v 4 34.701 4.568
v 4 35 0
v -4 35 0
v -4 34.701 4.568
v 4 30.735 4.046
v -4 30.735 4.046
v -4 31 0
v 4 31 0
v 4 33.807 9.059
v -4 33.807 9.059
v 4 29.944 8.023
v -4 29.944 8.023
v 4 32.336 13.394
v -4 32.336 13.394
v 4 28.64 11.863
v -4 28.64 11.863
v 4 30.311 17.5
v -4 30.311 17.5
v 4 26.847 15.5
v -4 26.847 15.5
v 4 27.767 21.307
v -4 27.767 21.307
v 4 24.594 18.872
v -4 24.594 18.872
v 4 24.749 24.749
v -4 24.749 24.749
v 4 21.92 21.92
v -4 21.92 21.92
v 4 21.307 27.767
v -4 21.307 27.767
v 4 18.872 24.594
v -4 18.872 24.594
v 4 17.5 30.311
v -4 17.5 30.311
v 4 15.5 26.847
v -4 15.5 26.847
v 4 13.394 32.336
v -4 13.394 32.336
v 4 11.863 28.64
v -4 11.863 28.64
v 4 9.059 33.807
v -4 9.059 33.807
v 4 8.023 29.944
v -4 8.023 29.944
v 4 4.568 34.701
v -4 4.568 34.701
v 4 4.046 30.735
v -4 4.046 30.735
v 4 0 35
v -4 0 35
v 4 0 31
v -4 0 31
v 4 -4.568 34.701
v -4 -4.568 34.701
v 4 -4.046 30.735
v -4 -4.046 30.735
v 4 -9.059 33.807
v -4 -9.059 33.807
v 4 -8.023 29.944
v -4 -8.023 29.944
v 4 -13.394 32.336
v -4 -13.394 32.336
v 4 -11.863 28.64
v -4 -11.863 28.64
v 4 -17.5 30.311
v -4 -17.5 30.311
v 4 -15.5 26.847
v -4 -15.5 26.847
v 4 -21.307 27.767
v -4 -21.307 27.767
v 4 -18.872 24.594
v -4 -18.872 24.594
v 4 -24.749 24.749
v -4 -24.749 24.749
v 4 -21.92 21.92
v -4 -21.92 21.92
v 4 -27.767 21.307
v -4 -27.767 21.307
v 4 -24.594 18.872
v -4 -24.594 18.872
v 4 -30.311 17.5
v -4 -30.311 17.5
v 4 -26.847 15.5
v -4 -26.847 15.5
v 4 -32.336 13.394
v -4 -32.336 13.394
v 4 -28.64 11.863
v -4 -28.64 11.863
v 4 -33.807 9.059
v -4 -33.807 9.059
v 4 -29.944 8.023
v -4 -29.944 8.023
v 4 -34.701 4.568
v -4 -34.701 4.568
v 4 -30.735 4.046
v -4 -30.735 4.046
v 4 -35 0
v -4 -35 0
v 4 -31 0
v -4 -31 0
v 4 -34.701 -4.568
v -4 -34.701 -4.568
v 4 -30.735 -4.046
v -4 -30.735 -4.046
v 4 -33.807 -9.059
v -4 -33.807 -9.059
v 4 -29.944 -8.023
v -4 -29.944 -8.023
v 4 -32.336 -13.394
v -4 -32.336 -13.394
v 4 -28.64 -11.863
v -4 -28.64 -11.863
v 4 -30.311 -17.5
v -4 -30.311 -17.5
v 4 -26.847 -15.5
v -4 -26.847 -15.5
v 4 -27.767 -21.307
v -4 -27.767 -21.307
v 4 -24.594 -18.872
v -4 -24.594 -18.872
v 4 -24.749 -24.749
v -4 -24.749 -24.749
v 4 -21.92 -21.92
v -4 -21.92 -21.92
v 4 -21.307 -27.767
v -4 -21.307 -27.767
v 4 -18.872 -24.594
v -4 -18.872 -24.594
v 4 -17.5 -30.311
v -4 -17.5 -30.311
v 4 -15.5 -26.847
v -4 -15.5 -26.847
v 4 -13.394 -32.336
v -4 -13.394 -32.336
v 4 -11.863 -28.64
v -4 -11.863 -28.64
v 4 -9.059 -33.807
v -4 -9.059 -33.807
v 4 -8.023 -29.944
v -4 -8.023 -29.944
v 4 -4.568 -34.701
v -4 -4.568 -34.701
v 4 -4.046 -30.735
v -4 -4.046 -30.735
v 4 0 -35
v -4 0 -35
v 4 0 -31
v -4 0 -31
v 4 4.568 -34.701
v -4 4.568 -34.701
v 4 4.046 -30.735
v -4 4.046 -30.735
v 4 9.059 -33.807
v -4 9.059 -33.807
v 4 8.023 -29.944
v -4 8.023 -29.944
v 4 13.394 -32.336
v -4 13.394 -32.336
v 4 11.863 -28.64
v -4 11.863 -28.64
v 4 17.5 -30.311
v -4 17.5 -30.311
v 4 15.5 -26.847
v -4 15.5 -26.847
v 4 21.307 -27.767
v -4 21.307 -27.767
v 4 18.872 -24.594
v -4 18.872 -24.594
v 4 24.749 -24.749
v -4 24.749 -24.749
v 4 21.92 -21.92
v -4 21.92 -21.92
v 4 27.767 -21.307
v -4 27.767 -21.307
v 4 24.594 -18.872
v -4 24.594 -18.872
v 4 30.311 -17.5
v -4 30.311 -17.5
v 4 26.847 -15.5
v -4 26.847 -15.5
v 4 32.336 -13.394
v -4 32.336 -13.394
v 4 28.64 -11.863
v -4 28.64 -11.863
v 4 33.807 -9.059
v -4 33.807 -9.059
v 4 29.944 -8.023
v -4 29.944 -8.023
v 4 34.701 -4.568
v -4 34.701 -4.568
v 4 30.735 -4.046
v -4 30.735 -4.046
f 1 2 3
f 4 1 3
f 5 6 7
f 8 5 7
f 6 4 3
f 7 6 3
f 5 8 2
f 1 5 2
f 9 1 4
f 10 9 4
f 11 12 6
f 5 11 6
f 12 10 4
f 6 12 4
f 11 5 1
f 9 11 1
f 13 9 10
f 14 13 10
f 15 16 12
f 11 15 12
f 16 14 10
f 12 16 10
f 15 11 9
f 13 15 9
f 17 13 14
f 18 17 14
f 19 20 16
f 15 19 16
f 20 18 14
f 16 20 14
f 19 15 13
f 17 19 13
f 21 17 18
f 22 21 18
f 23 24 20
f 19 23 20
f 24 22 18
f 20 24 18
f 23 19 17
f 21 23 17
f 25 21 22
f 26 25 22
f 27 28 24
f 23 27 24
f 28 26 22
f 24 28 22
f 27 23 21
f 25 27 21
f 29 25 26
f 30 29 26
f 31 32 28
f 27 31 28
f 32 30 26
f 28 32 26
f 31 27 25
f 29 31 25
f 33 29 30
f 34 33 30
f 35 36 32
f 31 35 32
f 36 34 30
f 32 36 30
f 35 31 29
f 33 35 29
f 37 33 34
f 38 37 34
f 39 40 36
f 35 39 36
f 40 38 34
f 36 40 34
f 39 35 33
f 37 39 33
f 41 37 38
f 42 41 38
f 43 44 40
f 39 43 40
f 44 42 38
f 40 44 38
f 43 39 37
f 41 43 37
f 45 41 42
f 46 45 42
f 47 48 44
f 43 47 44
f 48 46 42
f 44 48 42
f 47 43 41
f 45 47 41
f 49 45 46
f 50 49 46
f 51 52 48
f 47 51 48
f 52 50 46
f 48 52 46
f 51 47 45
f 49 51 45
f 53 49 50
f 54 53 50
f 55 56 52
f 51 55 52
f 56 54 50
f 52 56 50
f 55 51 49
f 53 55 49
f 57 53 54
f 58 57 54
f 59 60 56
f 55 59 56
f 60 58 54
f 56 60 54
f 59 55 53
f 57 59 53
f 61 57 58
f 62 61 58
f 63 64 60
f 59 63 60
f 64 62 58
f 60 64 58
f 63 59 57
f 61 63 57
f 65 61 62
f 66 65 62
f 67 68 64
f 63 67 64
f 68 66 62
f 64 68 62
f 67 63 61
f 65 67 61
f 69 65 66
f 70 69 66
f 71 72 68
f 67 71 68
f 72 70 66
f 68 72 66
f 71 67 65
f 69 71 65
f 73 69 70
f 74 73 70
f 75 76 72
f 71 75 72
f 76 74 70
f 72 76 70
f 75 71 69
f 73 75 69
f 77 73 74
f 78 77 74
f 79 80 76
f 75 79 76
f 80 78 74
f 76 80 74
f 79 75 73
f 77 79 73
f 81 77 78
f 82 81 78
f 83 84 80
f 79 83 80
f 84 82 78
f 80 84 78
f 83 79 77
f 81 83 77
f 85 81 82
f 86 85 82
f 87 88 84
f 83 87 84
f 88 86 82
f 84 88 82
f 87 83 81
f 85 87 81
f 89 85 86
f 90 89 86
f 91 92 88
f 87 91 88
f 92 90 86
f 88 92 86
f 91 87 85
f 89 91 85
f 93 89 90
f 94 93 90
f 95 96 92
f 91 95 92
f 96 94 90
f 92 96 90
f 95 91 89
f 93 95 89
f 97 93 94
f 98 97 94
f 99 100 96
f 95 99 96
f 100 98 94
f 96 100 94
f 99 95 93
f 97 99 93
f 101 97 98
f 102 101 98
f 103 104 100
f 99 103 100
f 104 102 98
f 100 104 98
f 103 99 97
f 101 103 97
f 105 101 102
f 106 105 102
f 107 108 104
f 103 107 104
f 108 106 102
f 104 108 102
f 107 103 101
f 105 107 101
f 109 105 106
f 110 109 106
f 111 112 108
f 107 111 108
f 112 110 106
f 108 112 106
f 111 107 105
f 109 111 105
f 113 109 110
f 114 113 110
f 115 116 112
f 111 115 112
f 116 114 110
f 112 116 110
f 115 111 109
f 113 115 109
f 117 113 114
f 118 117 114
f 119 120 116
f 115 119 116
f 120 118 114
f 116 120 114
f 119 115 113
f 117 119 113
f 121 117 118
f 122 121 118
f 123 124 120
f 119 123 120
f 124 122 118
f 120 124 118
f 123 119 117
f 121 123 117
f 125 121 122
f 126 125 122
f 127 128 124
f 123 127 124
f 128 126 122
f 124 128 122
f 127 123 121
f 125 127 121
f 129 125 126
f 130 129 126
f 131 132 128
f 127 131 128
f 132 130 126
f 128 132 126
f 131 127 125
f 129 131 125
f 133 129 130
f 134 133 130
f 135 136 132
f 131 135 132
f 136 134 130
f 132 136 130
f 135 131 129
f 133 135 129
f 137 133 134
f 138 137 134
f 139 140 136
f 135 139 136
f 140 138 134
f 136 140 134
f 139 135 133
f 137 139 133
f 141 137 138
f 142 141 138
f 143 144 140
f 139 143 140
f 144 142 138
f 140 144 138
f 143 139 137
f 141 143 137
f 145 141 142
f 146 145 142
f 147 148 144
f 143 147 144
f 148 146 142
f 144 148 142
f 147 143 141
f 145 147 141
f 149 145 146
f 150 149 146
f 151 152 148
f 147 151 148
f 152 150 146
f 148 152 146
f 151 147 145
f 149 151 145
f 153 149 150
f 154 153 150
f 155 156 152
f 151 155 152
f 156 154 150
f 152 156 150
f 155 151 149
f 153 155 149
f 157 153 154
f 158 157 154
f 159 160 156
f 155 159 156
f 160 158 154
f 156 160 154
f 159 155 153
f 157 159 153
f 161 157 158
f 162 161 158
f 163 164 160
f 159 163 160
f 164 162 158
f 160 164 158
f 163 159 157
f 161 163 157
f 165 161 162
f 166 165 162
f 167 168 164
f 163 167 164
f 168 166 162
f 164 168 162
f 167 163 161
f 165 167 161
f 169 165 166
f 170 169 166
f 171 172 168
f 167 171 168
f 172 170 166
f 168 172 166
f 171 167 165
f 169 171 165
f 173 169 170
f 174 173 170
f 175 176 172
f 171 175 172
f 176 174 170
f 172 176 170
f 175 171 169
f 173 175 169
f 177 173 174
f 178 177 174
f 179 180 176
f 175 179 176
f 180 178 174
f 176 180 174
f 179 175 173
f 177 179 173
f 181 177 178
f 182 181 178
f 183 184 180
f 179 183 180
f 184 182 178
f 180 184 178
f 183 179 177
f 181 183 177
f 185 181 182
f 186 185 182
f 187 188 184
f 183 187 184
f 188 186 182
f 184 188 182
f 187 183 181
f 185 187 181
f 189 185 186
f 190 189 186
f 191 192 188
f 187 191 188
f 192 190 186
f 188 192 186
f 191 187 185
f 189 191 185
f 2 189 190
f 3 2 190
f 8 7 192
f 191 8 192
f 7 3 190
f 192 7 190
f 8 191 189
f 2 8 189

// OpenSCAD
polyhedron(points=[[-4.0, 35.0, 0.0], [-4.0, 34.70057, 4.568417], [-4.0, 33.807404, 9.058667], [-4.0, 32.335784, 13.39392], [-4.0, 30.310889, 17.5], [-4.0, 27.767367, 21.30665], [-4.0, 24.748737, 24.748737], [-4.0, 21.30665, 27.767367], [-4.0, 17.5, 30.310889], [-4.0, 13.39392, 32.335784], [-4.0, 9.058667, 33.807404], [-4.0, 4.568417, 34.70057], [-4.0, 0.0, 35.0], [-4.0, -4.568417, 34.70057], [-4.0, -9.058667, 33.807404], [-4.0, -13.39392, 32.335784], [-4.0, -17.5, 30.310889], [-4.0, -21.30665, 27.767367], [-4.0, -24.748737, 24.748737], [-4.0, -27.767367, 21.30665], [-4.0, -30.310889, 17.5], [-4.0, -32.335784, 13.39392], [-4.0, -33.807404, 9.058667], [-4.0, -34.70057, 4.568417], [-4.0, -35.0, 0.0], [-4.0, -34.70057, -4.568417], [-4.0, -33.807404, -9.058667], [-4.0, -32.335784, -13.39392], [-4.0, -30.310889, -17.5], [-4.0, -27.767367, -21.30665], [-4.0, -24.748737, -24.748737], [-4.0, -21.30665, -27.767367], [-4.0, -17.5, -30.310889], [-4.0, -13.39392, -32.335784], [-4.0, -9.058667, -33.807404], [-4.0, -4.568417, -34.70057], [-4.0, -0.0, -35.0], [-4.0, 4.568417, -34.70057], [-4.0, 9.058667, -33.807404], [-4.0, 13.39392, -32.335784], [-4.0, 17.5, -30.310889], [-4.0, 21.30665, -27.767367], [-4.0, 24.748737, -24.748737], [-4.0, 27.767367, -21.30665], [-4.0, 30.310889, -17.5], [-4.0, 32.335784, -13.39392], [-4.0, 33.807404, -9.058667], [-4.0, 34.70057, -4.568417], [-4.0, 31.0, 0.0], [-4.0, 30.734791, 4.046312], [-4.0, 29.943701, 8.02339], [-4.0, 28.640266, 11.863186], [-4.0, 26.846788, 15.5], [-4.0, 24.593954, 18.871604], [-4.0, 21.92031, 21.92031], [-4.0, 18.871604, 24.593954], [-4.0, 15.5, 26.846788], [-4.0, 11.863186, 28.640266], [-4.0, 8.02339, 29.943701], [-4.0, 4.046312, 30.734791], [-4.0, 0.0, 31.0], [-4.0, -4.046312, 30.734791], [-4.0, -8.02339, 29.943701], [-4.0, -11.863186, 28.640266], [-4.0, -15.5, 26.846788], [-4.0, -18.871604, 24.593954], [-4.0, -21.92031, 21.92031], [-4.0, -24.593954, 18.871604], [-4.0, -26.846788, 15.5], [-4.0, -28.640266, 11.863186], [-4.0, -29.943701, 8.02339], [-4.0, -30.734791, 4.046312], [-4.0, -31.0, 0.0], [-4.0, -30.734791, -4.046312], [-4.0, -29.943701, -8.02339], [-4.0, -28.640266, -11.863186], [-4.0, -26.846788, -15.5], [-4.0, -24.593954, -18.871604], [-4.0, -21.92031, -21.92031], [-4.0, -18.871604, -24.593954], [-4.0, -15.5, -26.846788], [-4.0, -11.863186, -28.640266], [-4.0, -8.02339, -29.943701], [-4.0, -4.046312, -30.734791], [-4.0, -0.0, -31.0], [-4.0, 4.046312, -30.734791], [-4.0, 8.02339, -29.943701], [-4.0, 11.863186, -28.640266], [-4.0, 15.5, -26.846788], [-4.0, 18.871604, -24.593954], [-4.0, 21.92031, -21.92031], [-4.0, 24.593954, -18.871604], [-4.0, 26.846788, -15.5], [-4.0, 28.640266, -11.863186], [-4.0, 29.943701, -8.02339], [-4.0, 30.734791, -4.046312], [4.0, 35.0, 0.0], [4.0, 34.70057, 4.568417], [4.0, 33.807404, 9.058667], [4.0, 32.335784, 13.39392], [4.0, 30.310889, 17.5], [4.0, 27.767367, 21.30665], [4.0, 24.748737, 24.748737], [4.0, 21.30665, 27.767367], [4.0, 17.5, 30.310889], [4.0, 13.39392, 32.335784], [4.0, 9.058667, 33.807404], [4.0, 4.568417, 34.70057], [4.0, 0.0, 35.0], [4.0, -4.568417, 34.70057], [4.0, -9.058667, 33.807404], [4.0, -13.39392, 32.335784], [4.0, -17.5, 30.310889], [4.0, -21.30665, 27.767367], [4.0, -24.748737, 24.748737], [4.0, -27.767367, 21.30665], [4.0, -30.310889, 17.5], [4.0, -32.335784, 13.39392], [4.0, -33.807404, 9.058667], [4.0, -34.70057, 4.568417], [4.0, -35.0, 0.0], [4.0, -34.70057, -4.568417], [4.0, -33.807404, -9.058667], [4.0, -32.335784, -13.39392], [4.0, -30.310889, -17.5], [4.0, -27.767367, -21.30665], [4.0, -24.748737, -24.748737], [4.0, -21.30665, -27.767367], [4.0, -17.5, -30.310889], [4.0, -13.39392, -32.335784], [4.0, -9.058667, -33.807404], [4.0, -4.568417, -34.70057], [4.0, -0.0, -35.0], [4.0, 4.568417, -34.70057], [4.0, 9.058667, -33.807404], [4.0, 13.39392, -32.335784], [4.0, 17.5, -30.310889], [4.0, 21.30665, -27.767367], [4.0, 24.748737, -24.748737], [4.0, 27.767367, -21.30665], [4.0, 30.310889, -17.5], [4.0, 32.335784, -13.39392], [4.0, 33.807404, -9.058667], [4.0, 34.70057, -4.568417], [4.0, 31.0, 0.0], [4.0, 30.734791, 4.046312], [4.0, 29.943701, 8.02339], [4.0, 28.640266, 11.863186], [4.0, 26.846788, 15.5], [4.0, 24.593954, 18.871604], [4.0, 21.92031, 21.92031], [4.0, 18.871604, 24.593954], [4.0, 15.5, 26.846788], [4.0, 11.863186, 28.640266], [4.0, 8.02339, 29.943701], [4.0, 4.046312, 30.734791], [4.0, 0.0, 31.0], [4.0, -4.046312, 30.734791], [4.0, -8.02339, 29.943701], [4.0, -11.863186, 28.640266], [4.0, -15.5, 26.846788], [4.0, -18.871604, 24.593954], [4.0, -21.92031, 21.92031], [4.0, -24.593954, 18.871604], [4.0, -26.846788, 15.5], [4.0, -28.640266, 11.863186], [4.0, -29.943701, 8.02339], [4.0, -30.734791, 4.046312], [4.0, -31.0, 0.0], [4.0, -30.734791, -4.046312], [4.0, -29.943701, -8.02339], [4.0, -28.640266, -11.863186], [4.0, -26.846788, -15.5], [4.0, -24.593954, -18.871604], [4.0, -21.92031, -21.92031], [4.0, -18.871604, -24.593954], [4.0, -15.5, -26.846788], [4.0, -11.863186, -28.640266], [4.0, -8.02339, -29.943701], [4.0, -4.046312, -30.734791], [4.0, -0.0, -31.0], [4.0, 4.046312, -30.734791], [4.0, 8.02339, -29.943701], [4.0, 11.863186, -28.640266], [4.0, 15.5, -26.846788], [4.0, 18.871604, -24.593954], [4.0, 21.92031, -21.92031], [4.0, 24.593954, -18.871604], [4.0, 26.846788, -15.5], [4.0, 28.640266, -11.863186], [4.0, 29.943701, -8.02339], [4.0, 30.734791, -4.046312]], faces=[[0, 96, 97], [0, 97, 1], [48, 49, 145], [48, 145, 144], [0, 1, 49], [0, 49, 48], [96, 144, 145], [96, 145, 97], [1, 97, 98], [1, 98, 2], [49, 50, 146], [49, 146, 145], [1, 2, 50], [1, 50, 49], [97, 145, 146], [97, 146, 98], [2, 98, 99], [2, 99, 3], [50, 51, 147], [50, 147, 146], [2, 3, 51], [2, 51, 50], [98, 146, 147], [98, 147, 99], [3, 99, 100], [3, 100, 4], [51, 52, 148], [51, 148, 147], [3, 4, 52], [3, 52, 51], [99, 147, 148], [99, 148, 100], [4, 100, 101], [4, 101, 5], [52, 53, 149], [52, 149, 148], [4, 5, 53], [4, 53, 52], [100, 148, 149], [100, 149, 101], [5, 101, 102], [5, 102, 6], [53, 54, 150], [53, 150, 149], [5, 6, 54], [5, 54, 53], [101, 149, 150], [101, 150, 102], [6, 102, 103], [6, 103, 7], [54, 55, 151], [54, 151, 150], [6, 7, 55], [6, 55, 54], [102, 150, 151], [102, 151, 103], [7, 103, 104], [7, 104, 8], [55, 56, 152], [55, 152, 151], [7, 8, 56], [7, 56, 55], [103, 151, 152], [103, 152, 104], [8, 104, 105], [8, 105, 9], [56, 57, 153], [56, 153, 152], [8, 9, 57], [8, 57, 56], [104, 152, 153], [104, 153, 105], [9, 105, 106], [9, 106, 10], [57, 58, 154], [57, 154, 153], [9, 10, 58], [9, 58, 57], [105, 153, 154], [105, 154, 106], [10, 106, 107], [10, 107, 11], [58, 59, 155], [58, 155, 154], [10, 11, 59], [10, 59, 58], [106, 154, 155], [106, 155, 107], [11, 107, 108], [11, 108, 12], [59, 60, 156], [59, 156, 155], [11, 12, 60], [11, 60, 59], [107, 155, 156], [107, 156, 108], [12, 108, 109], [12, 109, 13], [60, 61, 157], [60, 157, 156], [12, 13, 61], [12, 61, 60], [108, 156, 157], [108, 157, 109], [13, 109, 110], [13, 110, 14], [61, 62, 158], [61, 158, 157], [13, 14, 62], [13, 62, 61], [109, 157, 158], [109, 158, 110], [14, 110, 111], [14, 111, 15], [62, 63, 159], [62, 159, 158], [14, 15, 63], [14, 63, 62], [110, 158, 159], [110, 159, 111], [15, 111, 112], [15, 112, 16], [63, 64, 160], [63, 160, 159], [15, 16, 64], [15, 64, 63], [111, 159, 160], [111, 160, 112], [16, 112, 113], [16, 113, 17], [64, 65, 161], [64, 161, 160], [16, 17, 65], [16, 65, 64], [112, 160, 161], [112, 161, 113], [17, 113, 114], [17, 114, 18], [65, 66, 162], [65, 162, 161], [17, 18, 66], [17, 66, 65], [113, 161, 162], [113, 162, 114], [18, 114, 115], [18, 115, 19], [66, 67, 163], [66, 163, 162], [18, 19, 67], [18, 67, 66], [114, 162, 163], [114, 163, 115], [19, 115, 116], [19, 116, 20], [67, 68, 164], [67, 164, 163], [19, 20, 68], [19, 68, 67], [115, 163, 164], [115, 164, 116], [20, 116, 117], [20, 117, 21], [68, 69, 165], [68, 165, 164], [20, 21, 69], [20, 69, 68], [116, 164, 165], [116, 165, 117], [21, 117, 118], [21, 118, 22], [69, 70, 166], [69, 166, 165], [21, 22, 70], [21, 70, 69], [117, 165, 166], [117, 166, 118], [22, 118, 119], [22, 119, 23], [70, 71, 167], [70, 167, 166], [22, 23, 71], [22, 71, 70], [118, 166, 167], [118, 167, 119], [23, 119, 120], [23, 120, 24], [71, 72, 168], [71, 168, 167], [23, 24, 72], [23, 72, 71], [119, 167, 168], [119, 168, 120], [24, 120, 121], [24, 121, 25], [72, 73, 169], [72, 169, 168], [24, 25, 73], [24, 73, 72], [120, 168, 169], [120, 169, 121], [25, 121, 122], [25, 122, 26], [73, 74, 170], [73, 170, 169], [25, 26, 74], [25, 74, 73], [121, 169, 170], [121, 170, 122], [26, 122, 123], [26, 123, 27], [74, 75, 171], [74, 171, 170], [26, 27, 75], [26, 75, 74], [122, 170, 171], [122, 171, 123], [27, 123, 124], [27, 124, 28], [75, 76, 172], [75, 172, 171], [27, 28, 76], [27, 76, 75], [123, 171, 172], [123, 172, 124], [28, 124, 125], [28, 125, 29], [76, 77, 173], [76, 173, 172], [28, 29, 77], [28, 77, 76], [124, 172, 173], [124, 173, 125], [29, 125, 126], [29, 126, 30], [77, 78, 174], [77, 174, 173], [29, 30, 78], [29, 78, 77], [125, 173, 174], [125, 174, 126], [30, 126, 127], [30, 127, 31], [78, 79, 175], [78, 175, 174], [30, 31, 79], [30, 79, 78], [126, 174, 175], [126, 175, 127], [31, 127, 128], [31, 128, 32], [79, 80, 176], [79, 176, 175], [31, 32, 80], [31, 80, 79], [127, 175, 176], [127, 176, 128], [32, 128, 129], [32, 129, 33], [80, 81, 177], [80, 177, 176], [32, 33, 81], [32, 81, 80], [128, 176, 177], [128, 177, 129], [33, 129, 130], [33, 130, 34], [81, 82, 178], [81, 178, 177], [33, 34, 82], [33, 82, 81], [129, 177, 178], [129, 178, 130], [34, 130, 131], [34, 131, 35], [82, 83, 179], [82, 179, 178], [34, 35, 83], [34, 83, 82], [130, 178, 179], [130, 179, 131], [35, 131, 132], [35, 132, 36], [83, 84, 180], [83, 180, 179], [35, 36, 84], [35, 84, 83], [131, 179, 180], [131, 180, 132], [36, 132, 133], [36, 133, 37], [84, 85, 181], [84, 181, 180], [36, 37, 85], [36, 85, 84], [132, 180, 181], [132, 181, 133], [37, 133, 134], [37, 134, 38], [85, 86, 182], [85, 182, 181], [37, 38, 86], [37, 86, 85], [133, 181, 182], [133, 182, 134], [38, 134, 135], [38, 135, 39], [86, 87, 183], [86, 183, 182], [38, 39, 87], [38, 87, 86], [134, 182, 183], [134, 183, 135], [39, 135, 136], [39, 136, 40], [87, 88, 184], [87, 184, 183], [39, 40, 88], [39, 88, 87], [135, 183, 184], [135, 184, 136], [40, 136, 137], [40, 137, 41], [88, 89, 185], [88, 185, 184], [40, 41, 89], [40, 89, 88], [136, 184, 185], [136, 185, 137], [41, 137, 138], [41, 138, 42], [89, 90, 186], [89, 186, 185], [41, 42, 90], [41, 90, 89], [137, 185, 186], [137, 186, 138], [42, 138, 139], [42, 139, 43], [90, 91, 187], [90, 187, 186], [42, 43, 91], [42, 91, 90], [138, 186, 187], [138, 187, 139], [43, 139, 140], [43, 140, 44], [91, 92, 188], [91, 188, 187], [43, 44, 92], [43, 92, 91], [139, 187, 188], [139, 188, 140], [44, 140, 141], [44, 141, 45], [92, 93, 189], [92, 189, 188], [44, 45, 93], [44, 93, 92], [140, 188, 189], [140, 189, 141], [45, 141, 142], [45, 142, 46], [93, 94, 190], [93, 190, 189], [45, 46, 94], [45, 94, 93], [141, 189, 190], [141, 190, 142], [46, 142, 143], [46, 143, 47], [94, 95, 191], [94, 191, 190], [46, 47, 95], [46, 95, 94], [142, 190, 191], [142, 191, 143], [47, 143, 96], [47, 96, 0], [95, 48, 144], [95, 144, 191], [47, 0, 48], [47, 48, 95], [143, 191, 144], [143, 144, 96]], convexity=20);
